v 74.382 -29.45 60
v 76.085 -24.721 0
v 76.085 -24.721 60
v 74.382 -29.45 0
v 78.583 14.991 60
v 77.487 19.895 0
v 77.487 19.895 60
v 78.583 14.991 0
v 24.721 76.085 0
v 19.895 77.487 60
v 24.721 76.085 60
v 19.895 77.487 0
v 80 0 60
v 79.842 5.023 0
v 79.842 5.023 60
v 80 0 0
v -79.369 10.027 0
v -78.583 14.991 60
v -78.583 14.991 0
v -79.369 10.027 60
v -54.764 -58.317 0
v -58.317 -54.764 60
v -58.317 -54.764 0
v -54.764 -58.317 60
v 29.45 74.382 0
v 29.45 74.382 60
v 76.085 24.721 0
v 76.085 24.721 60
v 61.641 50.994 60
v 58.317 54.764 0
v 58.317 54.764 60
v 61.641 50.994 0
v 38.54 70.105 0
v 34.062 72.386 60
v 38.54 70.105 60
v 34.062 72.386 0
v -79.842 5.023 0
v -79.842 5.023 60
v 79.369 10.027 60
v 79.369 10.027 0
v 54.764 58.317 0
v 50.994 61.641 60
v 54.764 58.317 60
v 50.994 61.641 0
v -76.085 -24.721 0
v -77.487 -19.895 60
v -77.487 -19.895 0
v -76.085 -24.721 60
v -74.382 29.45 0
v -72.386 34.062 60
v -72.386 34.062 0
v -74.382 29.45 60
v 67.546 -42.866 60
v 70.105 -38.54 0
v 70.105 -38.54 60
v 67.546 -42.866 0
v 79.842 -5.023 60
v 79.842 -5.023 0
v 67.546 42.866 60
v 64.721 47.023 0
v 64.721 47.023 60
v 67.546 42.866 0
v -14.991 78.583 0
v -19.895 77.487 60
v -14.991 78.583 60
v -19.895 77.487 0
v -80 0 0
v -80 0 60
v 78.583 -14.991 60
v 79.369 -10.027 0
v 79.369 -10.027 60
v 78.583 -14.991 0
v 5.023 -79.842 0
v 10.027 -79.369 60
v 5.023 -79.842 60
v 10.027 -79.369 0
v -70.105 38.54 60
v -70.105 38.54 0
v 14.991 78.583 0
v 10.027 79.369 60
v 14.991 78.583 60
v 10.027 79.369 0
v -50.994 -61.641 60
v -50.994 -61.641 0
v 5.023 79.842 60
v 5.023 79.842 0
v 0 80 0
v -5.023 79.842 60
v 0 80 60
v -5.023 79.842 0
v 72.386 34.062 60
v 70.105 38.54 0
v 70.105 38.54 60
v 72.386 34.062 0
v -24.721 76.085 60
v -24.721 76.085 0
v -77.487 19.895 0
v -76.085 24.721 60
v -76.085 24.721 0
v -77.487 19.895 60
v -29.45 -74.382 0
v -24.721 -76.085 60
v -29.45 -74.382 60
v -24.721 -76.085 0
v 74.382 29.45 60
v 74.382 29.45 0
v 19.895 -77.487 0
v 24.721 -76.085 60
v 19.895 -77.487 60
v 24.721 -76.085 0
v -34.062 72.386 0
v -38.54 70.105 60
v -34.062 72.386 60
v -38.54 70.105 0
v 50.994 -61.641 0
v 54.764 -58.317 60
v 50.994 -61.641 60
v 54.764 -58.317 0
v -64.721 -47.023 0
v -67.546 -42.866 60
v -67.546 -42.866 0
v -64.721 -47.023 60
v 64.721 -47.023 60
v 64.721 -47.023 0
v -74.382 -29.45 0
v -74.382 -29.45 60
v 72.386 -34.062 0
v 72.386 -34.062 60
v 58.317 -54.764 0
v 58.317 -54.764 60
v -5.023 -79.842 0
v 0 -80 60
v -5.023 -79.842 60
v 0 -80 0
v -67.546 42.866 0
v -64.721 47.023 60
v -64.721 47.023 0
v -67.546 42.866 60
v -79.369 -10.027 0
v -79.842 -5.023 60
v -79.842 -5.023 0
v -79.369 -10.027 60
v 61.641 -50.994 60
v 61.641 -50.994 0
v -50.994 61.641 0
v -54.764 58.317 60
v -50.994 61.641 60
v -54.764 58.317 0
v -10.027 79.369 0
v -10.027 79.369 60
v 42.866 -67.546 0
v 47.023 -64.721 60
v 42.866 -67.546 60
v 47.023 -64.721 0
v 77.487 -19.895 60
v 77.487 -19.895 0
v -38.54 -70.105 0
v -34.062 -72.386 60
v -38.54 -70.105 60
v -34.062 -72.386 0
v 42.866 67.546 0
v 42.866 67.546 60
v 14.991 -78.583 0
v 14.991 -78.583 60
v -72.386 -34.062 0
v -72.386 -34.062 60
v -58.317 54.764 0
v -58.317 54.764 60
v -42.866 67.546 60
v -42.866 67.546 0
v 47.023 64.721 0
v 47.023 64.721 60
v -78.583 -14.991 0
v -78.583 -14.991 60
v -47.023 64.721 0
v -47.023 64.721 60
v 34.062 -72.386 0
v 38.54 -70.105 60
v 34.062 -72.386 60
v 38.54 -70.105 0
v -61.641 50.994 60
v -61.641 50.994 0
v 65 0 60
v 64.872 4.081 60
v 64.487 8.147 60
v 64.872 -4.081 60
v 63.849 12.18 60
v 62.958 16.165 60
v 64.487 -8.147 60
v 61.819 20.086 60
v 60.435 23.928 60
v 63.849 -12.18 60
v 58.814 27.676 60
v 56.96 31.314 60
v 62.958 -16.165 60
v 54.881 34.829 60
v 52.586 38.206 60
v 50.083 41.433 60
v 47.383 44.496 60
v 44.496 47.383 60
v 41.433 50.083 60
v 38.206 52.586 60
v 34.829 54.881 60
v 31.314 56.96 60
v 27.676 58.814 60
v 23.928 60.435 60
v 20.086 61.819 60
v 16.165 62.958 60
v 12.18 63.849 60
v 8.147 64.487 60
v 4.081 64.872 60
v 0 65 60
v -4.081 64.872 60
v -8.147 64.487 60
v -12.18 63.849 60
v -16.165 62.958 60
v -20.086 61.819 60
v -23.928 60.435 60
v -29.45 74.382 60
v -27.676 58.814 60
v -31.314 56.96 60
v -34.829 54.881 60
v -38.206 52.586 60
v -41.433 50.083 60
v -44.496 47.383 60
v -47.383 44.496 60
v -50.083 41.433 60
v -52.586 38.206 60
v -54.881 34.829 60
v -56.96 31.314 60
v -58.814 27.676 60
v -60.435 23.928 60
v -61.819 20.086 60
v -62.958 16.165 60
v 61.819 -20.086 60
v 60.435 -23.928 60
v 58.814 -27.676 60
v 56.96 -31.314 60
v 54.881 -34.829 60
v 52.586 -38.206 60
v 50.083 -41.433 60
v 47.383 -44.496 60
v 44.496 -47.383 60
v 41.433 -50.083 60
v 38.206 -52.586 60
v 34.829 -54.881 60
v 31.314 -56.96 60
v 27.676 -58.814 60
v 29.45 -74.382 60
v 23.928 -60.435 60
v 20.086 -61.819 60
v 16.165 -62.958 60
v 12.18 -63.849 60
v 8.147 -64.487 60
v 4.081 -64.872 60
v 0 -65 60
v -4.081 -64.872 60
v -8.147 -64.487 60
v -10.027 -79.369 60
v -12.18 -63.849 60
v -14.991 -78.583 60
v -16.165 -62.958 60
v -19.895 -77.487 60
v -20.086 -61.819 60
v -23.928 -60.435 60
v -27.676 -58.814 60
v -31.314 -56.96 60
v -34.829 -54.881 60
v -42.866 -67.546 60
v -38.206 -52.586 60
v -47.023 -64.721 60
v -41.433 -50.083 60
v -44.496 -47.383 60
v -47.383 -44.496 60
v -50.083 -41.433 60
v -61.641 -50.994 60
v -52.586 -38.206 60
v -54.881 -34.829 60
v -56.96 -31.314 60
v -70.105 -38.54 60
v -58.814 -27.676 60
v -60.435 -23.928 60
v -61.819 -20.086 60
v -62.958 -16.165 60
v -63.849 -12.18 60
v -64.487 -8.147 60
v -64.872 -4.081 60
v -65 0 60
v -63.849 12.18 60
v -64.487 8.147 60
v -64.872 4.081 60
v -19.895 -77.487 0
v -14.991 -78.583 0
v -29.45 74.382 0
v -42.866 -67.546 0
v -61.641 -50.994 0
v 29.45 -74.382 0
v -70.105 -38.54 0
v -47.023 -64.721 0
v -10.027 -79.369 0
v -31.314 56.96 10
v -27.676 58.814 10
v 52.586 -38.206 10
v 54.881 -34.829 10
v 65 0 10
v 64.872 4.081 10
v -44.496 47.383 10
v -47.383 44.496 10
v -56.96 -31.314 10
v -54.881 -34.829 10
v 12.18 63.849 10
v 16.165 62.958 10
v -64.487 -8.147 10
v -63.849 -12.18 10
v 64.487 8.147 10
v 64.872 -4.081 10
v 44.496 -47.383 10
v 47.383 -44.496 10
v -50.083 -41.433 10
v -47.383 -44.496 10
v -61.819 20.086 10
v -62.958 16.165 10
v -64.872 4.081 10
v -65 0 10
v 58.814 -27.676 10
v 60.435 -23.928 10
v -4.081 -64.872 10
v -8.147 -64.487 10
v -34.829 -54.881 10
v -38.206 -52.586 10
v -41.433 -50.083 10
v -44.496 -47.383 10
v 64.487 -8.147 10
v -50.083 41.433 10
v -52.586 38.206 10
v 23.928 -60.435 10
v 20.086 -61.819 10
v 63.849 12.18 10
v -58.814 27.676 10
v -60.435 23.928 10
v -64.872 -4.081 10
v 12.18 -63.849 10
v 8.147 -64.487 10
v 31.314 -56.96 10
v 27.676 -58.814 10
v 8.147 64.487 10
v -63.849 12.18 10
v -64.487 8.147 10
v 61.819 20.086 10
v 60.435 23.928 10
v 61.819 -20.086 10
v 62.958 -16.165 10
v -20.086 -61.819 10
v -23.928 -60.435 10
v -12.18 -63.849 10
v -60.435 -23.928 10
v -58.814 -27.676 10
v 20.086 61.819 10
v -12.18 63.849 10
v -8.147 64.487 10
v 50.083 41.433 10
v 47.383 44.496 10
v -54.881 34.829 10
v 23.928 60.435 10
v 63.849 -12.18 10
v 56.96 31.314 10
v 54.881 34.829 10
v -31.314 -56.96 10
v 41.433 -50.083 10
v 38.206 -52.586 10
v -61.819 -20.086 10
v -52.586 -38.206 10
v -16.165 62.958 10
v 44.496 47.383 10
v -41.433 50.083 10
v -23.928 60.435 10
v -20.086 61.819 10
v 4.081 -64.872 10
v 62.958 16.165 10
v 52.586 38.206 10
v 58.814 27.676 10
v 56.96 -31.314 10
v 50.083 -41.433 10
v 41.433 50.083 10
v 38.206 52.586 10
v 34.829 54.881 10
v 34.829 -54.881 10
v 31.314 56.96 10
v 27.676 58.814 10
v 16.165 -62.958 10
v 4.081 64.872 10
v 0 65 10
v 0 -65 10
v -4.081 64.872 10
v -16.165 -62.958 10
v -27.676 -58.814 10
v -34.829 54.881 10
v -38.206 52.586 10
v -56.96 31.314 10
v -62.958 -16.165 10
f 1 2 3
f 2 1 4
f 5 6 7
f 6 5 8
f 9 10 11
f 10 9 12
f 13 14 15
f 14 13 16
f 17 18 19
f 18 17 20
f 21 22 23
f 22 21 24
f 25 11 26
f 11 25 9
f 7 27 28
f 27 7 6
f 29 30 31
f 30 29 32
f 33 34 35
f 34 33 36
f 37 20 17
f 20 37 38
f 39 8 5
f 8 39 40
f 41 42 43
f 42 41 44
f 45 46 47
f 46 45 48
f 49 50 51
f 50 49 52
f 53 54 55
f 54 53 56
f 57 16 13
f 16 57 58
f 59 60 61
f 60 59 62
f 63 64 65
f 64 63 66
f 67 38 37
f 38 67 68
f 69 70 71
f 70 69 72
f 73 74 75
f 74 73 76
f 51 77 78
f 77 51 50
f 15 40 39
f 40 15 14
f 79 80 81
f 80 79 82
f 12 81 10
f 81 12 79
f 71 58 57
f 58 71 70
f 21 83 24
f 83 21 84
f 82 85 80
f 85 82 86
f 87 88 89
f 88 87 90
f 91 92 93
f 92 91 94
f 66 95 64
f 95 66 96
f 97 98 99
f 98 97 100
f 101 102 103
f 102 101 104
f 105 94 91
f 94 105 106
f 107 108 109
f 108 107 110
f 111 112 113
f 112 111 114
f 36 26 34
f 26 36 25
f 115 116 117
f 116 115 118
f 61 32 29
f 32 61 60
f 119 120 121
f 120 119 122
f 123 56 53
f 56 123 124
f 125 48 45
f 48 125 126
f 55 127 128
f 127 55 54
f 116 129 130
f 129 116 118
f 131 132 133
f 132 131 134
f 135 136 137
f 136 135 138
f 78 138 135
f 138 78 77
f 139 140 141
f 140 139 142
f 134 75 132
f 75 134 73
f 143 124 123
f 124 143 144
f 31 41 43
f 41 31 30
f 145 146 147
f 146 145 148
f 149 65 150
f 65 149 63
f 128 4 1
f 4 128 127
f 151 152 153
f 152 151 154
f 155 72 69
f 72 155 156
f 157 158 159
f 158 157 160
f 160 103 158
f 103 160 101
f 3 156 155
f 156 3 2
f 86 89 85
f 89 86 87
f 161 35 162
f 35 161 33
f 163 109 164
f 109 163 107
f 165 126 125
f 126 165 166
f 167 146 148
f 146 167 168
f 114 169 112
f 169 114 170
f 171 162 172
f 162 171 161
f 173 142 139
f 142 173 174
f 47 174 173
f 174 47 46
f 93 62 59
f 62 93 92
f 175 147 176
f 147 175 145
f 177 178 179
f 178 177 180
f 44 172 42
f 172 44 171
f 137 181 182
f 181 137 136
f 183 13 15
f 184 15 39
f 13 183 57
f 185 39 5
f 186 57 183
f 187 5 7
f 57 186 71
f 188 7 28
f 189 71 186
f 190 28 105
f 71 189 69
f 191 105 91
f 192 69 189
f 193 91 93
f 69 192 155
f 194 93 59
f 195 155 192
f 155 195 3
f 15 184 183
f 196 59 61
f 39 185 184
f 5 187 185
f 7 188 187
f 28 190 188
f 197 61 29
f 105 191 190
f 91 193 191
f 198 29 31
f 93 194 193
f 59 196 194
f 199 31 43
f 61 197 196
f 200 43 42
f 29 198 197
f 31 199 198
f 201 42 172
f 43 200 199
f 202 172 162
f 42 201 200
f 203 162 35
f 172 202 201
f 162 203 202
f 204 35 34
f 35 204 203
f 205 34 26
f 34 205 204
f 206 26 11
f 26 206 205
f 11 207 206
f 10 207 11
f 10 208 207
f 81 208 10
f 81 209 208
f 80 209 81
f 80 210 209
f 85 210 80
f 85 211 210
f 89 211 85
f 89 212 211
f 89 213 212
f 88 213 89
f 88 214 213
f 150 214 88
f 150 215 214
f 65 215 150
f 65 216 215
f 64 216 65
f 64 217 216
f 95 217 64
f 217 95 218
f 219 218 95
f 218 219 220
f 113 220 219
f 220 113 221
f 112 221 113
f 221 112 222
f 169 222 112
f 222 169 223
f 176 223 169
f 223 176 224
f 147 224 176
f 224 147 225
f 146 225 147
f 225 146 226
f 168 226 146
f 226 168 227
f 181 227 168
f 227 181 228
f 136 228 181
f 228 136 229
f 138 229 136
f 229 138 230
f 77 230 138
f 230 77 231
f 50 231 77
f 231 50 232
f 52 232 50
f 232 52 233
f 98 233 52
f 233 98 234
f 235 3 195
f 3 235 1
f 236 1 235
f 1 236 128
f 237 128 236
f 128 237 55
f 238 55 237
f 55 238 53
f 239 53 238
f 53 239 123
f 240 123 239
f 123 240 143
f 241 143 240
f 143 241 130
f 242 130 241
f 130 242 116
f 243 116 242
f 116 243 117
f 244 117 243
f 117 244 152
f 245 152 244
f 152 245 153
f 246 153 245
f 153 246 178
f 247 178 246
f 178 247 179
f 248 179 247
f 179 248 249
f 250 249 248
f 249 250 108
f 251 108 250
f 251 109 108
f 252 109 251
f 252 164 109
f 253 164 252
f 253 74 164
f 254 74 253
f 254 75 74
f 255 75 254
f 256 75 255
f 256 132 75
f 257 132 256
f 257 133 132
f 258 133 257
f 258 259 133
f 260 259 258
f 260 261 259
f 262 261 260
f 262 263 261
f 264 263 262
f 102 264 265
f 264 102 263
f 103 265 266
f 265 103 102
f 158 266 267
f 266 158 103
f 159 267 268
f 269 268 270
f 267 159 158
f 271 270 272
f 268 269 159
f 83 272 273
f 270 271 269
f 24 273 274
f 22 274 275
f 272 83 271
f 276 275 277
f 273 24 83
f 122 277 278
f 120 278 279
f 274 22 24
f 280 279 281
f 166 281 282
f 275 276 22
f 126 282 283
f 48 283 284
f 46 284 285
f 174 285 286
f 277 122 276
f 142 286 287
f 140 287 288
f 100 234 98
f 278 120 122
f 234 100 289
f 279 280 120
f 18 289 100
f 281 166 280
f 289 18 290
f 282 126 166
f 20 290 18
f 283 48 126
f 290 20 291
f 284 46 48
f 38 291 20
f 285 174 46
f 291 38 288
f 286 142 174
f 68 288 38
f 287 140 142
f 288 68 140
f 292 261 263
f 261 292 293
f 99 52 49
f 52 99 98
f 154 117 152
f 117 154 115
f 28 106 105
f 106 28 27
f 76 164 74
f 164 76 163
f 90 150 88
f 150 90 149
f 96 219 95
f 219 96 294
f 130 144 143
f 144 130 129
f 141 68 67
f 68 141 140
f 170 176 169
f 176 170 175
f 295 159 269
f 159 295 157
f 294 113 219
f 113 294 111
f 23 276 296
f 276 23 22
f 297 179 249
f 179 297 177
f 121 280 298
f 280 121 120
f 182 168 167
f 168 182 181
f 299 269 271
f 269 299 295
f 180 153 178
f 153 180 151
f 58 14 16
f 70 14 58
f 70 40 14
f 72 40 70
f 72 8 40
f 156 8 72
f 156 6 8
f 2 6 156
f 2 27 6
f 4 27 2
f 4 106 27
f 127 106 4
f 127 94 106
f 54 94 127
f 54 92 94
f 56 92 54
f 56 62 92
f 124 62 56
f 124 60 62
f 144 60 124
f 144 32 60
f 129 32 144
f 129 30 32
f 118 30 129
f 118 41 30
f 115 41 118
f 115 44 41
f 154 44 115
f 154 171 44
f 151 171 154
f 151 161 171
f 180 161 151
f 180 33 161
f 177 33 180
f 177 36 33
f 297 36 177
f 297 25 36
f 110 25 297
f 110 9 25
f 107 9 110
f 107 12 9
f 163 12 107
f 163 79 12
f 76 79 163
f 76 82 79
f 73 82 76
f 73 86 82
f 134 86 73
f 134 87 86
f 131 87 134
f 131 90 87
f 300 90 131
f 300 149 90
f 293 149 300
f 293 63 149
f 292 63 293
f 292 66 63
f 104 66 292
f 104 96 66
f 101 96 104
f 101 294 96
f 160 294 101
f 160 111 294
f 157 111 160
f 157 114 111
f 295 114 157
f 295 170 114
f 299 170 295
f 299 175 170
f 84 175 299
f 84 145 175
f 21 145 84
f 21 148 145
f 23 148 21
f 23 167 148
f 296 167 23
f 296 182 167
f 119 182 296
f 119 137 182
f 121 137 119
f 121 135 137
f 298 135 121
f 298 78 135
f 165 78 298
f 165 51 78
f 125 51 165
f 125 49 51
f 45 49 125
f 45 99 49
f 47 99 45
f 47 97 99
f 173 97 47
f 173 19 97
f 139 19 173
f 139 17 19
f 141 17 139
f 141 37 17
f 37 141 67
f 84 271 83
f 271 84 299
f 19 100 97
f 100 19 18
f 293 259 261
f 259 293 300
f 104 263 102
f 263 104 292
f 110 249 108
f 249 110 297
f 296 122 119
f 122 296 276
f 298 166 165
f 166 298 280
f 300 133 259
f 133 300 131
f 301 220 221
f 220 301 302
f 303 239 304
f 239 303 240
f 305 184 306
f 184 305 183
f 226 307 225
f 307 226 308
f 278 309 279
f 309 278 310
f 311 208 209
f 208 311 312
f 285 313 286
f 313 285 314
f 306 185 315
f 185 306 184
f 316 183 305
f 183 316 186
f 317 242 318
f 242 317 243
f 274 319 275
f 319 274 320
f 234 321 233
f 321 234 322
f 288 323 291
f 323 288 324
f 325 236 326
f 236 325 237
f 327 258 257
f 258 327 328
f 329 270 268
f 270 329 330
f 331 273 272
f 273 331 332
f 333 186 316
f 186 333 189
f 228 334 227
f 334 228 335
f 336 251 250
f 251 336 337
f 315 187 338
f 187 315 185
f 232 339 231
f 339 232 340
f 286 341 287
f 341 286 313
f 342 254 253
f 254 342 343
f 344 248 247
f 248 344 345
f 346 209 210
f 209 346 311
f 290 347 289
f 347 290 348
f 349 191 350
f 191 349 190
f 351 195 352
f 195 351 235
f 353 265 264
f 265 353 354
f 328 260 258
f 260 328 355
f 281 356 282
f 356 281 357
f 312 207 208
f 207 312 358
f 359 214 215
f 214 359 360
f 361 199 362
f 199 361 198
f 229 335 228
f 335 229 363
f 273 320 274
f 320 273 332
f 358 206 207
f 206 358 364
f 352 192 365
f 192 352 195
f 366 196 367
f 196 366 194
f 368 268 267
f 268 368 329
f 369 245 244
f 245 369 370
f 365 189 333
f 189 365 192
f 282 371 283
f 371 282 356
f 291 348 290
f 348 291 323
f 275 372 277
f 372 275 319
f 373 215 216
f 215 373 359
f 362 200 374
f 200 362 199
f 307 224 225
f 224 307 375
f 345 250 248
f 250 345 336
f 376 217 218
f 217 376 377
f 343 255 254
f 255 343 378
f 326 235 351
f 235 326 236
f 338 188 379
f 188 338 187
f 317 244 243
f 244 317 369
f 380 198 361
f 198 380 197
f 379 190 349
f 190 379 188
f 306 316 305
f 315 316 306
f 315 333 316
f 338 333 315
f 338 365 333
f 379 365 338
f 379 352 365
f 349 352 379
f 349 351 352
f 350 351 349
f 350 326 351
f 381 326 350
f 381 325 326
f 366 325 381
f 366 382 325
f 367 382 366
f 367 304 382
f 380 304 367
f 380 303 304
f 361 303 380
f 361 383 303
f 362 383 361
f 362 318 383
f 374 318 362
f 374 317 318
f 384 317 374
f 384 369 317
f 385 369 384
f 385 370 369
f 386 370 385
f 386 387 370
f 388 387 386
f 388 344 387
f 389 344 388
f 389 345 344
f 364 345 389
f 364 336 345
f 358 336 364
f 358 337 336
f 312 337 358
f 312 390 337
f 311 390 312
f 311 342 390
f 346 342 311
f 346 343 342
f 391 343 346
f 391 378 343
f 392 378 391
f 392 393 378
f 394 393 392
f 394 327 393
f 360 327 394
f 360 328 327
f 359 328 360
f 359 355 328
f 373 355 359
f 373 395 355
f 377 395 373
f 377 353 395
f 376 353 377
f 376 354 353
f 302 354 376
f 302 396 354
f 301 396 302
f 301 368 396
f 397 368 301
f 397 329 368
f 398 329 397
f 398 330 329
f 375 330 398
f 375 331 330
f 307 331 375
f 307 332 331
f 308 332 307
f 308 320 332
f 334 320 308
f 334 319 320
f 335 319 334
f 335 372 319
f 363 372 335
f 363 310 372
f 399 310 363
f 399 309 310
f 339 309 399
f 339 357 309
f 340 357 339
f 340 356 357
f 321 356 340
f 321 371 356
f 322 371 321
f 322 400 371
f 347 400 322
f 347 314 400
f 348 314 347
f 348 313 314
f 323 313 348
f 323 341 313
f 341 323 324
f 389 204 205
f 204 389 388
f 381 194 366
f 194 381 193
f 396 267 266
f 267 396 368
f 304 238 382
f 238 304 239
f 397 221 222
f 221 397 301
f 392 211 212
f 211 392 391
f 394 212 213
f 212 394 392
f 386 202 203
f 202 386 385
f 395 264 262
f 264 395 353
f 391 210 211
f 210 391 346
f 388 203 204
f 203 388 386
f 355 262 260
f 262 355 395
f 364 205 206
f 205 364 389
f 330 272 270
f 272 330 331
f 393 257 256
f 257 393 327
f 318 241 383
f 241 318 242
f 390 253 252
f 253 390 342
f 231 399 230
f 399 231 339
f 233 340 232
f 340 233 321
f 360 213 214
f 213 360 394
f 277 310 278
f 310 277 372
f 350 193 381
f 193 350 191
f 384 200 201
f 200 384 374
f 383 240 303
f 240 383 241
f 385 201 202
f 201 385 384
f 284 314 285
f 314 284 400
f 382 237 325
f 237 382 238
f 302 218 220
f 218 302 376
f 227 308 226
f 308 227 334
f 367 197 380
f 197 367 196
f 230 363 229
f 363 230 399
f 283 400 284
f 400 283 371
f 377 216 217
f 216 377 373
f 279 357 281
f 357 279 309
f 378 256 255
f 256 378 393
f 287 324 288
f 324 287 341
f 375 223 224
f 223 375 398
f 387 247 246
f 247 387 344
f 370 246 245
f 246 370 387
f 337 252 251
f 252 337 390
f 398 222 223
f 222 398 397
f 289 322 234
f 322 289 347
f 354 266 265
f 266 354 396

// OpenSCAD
h = 60.0;
r = 80.0;
ir = 65.0;
ih = 50.0;

$fn = 100;

difference() {
    cylinder(h = h, r = r, center = false);
    translate([0, 0, h-ih]) {
        cylinder(h = ih+20.0, r = ir, center = false);
    };
};
